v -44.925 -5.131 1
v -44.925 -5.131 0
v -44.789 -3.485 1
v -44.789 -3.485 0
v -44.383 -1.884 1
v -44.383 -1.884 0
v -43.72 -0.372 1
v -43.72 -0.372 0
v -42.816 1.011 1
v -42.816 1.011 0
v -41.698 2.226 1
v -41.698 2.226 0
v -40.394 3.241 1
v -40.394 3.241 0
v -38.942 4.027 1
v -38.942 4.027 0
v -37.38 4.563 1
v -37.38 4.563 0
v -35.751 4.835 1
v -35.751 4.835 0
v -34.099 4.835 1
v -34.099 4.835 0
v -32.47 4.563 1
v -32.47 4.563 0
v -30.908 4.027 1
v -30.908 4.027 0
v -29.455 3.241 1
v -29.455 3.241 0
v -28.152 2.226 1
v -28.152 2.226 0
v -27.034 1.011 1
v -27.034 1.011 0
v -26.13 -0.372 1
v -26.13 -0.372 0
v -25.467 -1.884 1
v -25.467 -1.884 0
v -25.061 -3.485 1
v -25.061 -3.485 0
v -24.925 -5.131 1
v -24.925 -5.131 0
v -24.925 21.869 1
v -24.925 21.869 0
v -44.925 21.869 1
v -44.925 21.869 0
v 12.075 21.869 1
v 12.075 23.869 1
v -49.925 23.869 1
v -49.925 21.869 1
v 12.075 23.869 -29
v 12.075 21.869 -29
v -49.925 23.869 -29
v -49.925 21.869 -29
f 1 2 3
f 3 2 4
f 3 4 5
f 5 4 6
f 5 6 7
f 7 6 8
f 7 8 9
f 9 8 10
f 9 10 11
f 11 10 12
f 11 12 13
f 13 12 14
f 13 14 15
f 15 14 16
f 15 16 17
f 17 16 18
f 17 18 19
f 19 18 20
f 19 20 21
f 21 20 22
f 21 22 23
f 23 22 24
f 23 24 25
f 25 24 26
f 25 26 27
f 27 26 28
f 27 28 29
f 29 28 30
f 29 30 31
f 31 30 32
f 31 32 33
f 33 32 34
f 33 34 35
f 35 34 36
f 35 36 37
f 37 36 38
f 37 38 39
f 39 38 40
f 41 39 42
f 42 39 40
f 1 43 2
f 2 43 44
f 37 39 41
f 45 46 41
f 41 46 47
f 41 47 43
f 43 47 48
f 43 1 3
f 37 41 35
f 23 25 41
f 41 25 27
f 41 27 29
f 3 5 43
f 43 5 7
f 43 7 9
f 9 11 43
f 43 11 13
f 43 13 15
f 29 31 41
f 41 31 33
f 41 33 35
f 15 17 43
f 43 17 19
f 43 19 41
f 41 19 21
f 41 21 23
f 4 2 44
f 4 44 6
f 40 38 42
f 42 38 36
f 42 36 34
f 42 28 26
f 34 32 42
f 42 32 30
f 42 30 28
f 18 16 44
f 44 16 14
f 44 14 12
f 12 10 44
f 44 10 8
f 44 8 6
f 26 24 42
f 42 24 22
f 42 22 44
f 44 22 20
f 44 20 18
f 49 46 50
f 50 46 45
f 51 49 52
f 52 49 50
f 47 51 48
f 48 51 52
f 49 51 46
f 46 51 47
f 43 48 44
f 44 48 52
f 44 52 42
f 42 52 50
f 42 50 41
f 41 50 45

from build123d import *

# Parameters (mm, degrees)
BOSS_EXTRUDE1_DEPTH = 1
BOSS_EXTRUDE2_DEPTH = 2


with BuildPart() as part:
    # Sketch2 → Boss-Extrude1 (new body)
    with BuildSketch(Plane.XY):
        with BuildLine():
            Line((-44.924968499, -5.131156509), (-44.924968499, 21.868843491))
            Line((-44.924968499, 21.868843491), (-24.924968499, 21.868843491))
            Line((-24.924968499, 21.868843491), (-24.924968499, -5.131156509))
            ThreePointArc((-24.924968499, -5.131156509), (-34.924968499, 4.868843491), (-44.924968499, -5.131156509))
        make_face()
    extrude(amount=BOSS_EXTRUDE1_DEPTH)

    # Sketch3 → Boss-Extrude2 (add)
    with BuildSketch(Plane(origin=(0, 21.868843491, 0), x_dir=(1, 0, 0), z_dir=(0, 1, 0))):
        Polygon((-44.924968499, -1), (-49.924968499, -1), (-49.924968499, 29), (12.075031501, 29), (12.075031501, -1), align=None)
    extrude(amount=BOSS_EXTRUDE2_DEPTH)


solid = part.part
